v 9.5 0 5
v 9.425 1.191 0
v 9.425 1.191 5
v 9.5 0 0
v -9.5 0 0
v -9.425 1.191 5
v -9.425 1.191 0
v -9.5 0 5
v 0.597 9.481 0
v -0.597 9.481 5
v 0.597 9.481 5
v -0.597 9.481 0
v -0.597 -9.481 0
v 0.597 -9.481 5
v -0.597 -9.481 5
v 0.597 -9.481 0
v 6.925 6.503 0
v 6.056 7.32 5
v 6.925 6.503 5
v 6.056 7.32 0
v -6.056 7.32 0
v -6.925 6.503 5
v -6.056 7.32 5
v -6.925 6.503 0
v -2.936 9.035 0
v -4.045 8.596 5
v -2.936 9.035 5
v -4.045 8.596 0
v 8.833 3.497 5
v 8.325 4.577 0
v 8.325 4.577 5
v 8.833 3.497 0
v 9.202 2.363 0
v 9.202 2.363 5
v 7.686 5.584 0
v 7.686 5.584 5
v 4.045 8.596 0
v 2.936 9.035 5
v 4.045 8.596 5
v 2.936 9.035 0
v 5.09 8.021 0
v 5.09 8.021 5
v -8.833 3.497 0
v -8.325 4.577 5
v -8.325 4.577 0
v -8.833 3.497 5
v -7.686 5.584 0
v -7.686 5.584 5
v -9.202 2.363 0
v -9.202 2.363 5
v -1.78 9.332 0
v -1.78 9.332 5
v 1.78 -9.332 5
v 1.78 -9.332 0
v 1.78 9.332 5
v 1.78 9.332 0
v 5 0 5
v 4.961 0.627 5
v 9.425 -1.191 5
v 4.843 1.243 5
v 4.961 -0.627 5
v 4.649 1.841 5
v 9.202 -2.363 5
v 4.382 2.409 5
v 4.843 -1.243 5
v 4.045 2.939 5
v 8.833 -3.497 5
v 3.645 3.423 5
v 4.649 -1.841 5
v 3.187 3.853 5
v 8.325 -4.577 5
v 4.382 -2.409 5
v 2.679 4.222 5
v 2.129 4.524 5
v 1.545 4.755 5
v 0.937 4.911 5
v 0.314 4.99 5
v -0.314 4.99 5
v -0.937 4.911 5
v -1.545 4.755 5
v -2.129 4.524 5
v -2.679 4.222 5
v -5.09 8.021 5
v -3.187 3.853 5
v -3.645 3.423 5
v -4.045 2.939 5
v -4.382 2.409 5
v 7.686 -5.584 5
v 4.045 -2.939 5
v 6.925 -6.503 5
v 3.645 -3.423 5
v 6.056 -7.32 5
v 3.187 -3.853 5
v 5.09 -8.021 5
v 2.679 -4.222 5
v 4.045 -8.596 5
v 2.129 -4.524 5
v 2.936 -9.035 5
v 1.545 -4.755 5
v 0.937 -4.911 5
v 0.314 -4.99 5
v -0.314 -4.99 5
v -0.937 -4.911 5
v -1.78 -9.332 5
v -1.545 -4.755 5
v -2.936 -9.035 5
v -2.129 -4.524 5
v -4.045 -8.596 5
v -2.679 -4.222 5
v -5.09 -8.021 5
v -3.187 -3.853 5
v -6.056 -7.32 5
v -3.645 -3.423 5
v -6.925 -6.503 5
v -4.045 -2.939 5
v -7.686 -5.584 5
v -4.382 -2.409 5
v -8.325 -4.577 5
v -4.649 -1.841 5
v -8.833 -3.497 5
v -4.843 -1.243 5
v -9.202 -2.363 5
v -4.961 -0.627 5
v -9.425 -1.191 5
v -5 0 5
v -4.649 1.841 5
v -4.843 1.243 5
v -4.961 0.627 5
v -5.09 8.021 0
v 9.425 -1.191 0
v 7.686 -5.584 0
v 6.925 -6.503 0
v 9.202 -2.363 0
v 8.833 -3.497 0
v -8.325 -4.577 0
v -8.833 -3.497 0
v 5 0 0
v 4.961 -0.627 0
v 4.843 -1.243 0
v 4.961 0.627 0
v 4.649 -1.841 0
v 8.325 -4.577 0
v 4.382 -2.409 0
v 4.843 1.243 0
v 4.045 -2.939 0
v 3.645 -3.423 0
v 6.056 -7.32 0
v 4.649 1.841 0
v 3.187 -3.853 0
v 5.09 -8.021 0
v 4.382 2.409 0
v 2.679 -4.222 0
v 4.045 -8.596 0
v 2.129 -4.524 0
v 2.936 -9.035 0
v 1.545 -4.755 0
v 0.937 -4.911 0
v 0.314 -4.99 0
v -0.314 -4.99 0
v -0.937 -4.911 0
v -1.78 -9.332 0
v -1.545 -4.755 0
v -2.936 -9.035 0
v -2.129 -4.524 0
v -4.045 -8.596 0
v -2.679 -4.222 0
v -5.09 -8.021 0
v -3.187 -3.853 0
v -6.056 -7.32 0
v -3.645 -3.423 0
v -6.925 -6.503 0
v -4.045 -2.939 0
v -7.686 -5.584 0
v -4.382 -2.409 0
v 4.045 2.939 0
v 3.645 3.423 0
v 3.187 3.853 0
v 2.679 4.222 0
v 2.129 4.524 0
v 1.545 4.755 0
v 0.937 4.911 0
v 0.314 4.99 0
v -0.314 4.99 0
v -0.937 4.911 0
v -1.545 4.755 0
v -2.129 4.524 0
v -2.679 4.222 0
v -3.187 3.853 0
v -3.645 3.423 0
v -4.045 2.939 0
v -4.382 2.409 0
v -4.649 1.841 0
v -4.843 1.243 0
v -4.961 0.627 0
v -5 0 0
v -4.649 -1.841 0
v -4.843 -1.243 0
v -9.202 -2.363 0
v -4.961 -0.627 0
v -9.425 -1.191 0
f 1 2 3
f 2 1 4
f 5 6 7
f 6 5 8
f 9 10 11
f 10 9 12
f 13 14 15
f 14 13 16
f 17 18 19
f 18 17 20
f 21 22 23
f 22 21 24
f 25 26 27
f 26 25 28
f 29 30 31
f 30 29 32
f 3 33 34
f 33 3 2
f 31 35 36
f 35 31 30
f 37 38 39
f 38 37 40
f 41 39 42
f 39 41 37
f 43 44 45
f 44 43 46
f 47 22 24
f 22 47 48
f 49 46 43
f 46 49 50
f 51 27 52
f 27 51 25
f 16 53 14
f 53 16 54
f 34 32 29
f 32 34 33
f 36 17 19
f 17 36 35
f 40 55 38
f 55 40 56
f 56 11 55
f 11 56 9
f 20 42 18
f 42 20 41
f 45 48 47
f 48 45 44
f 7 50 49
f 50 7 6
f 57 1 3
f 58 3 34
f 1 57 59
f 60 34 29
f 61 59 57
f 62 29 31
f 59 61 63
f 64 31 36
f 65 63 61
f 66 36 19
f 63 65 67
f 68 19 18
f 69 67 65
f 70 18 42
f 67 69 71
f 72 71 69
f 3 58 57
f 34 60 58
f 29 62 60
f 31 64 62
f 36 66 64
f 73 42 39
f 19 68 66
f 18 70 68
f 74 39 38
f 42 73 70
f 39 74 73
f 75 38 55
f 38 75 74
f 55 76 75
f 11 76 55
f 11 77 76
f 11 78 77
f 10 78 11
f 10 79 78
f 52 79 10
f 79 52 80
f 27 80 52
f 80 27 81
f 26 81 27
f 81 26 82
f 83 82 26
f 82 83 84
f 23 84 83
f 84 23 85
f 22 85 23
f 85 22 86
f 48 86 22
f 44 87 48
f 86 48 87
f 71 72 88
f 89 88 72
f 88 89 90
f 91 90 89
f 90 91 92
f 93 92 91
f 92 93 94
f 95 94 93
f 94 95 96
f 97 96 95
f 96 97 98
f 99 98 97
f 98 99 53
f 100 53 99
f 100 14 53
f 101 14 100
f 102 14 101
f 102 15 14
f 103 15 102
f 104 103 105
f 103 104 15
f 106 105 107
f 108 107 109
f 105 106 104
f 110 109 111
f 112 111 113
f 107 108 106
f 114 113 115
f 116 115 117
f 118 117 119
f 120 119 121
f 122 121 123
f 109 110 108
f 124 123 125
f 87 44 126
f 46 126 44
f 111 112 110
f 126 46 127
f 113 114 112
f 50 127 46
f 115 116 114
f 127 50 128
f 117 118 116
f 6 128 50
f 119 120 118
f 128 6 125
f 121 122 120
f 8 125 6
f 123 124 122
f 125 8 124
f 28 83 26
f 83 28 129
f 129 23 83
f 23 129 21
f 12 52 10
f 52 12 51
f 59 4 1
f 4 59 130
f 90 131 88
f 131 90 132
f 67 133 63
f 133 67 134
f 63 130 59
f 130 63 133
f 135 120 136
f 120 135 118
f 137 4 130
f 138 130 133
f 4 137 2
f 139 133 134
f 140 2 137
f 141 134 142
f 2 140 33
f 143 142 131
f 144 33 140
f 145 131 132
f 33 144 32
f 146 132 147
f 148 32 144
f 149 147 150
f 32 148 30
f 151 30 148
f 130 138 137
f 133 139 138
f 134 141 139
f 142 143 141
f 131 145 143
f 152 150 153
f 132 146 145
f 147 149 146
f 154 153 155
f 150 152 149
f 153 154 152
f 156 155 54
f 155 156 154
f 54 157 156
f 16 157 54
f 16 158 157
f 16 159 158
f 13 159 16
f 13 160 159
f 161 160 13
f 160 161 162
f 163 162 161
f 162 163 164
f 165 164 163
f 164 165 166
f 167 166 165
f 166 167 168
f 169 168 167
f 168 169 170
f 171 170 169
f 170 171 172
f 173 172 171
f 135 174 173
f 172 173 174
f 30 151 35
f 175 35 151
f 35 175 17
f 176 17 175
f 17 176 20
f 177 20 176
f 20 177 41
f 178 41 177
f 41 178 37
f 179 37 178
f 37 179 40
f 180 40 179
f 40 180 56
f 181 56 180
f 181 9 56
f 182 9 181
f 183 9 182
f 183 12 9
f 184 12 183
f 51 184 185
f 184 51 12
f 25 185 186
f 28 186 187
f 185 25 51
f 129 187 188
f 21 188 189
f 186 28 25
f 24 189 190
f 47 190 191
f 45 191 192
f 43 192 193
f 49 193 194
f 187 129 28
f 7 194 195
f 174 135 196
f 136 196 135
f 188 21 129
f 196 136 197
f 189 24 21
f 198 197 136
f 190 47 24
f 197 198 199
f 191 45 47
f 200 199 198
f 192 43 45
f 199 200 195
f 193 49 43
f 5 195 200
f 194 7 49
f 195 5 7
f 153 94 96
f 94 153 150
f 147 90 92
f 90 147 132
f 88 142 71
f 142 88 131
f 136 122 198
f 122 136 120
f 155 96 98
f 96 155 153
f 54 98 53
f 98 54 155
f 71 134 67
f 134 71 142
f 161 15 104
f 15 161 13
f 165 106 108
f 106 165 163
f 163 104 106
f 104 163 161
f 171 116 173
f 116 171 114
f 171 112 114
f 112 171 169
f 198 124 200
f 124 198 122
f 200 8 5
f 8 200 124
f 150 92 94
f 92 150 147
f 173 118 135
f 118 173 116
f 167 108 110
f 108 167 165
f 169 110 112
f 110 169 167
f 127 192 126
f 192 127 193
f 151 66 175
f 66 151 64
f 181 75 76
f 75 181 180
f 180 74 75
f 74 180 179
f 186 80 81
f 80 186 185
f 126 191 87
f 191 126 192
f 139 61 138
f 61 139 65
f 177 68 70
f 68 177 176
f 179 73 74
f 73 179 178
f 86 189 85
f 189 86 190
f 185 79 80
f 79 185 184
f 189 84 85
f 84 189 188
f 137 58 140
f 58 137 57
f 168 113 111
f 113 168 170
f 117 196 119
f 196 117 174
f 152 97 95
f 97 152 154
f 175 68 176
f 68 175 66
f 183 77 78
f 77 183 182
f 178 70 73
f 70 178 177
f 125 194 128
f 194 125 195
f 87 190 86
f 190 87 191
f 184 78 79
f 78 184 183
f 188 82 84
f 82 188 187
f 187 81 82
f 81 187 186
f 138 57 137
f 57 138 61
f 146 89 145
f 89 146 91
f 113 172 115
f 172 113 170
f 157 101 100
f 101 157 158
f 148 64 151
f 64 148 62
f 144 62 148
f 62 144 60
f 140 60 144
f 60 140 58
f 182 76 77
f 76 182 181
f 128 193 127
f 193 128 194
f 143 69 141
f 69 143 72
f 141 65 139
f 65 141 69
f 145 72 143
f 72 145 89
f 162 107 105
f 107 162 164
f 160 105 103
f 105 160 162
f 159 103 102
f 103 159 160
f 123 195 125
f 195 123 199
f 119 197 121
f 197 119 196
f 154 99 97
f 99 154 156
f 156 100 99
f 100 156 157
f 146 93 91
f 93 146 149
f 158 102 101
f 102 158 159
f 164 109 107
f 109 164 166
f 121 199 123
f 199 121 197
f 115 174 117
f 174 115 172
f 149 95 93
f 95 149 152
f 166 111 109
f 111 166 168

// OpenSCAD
$fn = 50;


difference() {
	union() {
		translate(v = [0, 0, 0]) {
			rotate(a = [0, 0, 0]) {
				cylinder(h = 5, r = 9.5000000000);
			}
		}
	}
	union() {
		translate(v = [0, 0, 0]) {
			rotate(a = [0, 0, 0]) {
				cylinder(h = 5, r = 5.0000000000);
			}
		}
	}
}
